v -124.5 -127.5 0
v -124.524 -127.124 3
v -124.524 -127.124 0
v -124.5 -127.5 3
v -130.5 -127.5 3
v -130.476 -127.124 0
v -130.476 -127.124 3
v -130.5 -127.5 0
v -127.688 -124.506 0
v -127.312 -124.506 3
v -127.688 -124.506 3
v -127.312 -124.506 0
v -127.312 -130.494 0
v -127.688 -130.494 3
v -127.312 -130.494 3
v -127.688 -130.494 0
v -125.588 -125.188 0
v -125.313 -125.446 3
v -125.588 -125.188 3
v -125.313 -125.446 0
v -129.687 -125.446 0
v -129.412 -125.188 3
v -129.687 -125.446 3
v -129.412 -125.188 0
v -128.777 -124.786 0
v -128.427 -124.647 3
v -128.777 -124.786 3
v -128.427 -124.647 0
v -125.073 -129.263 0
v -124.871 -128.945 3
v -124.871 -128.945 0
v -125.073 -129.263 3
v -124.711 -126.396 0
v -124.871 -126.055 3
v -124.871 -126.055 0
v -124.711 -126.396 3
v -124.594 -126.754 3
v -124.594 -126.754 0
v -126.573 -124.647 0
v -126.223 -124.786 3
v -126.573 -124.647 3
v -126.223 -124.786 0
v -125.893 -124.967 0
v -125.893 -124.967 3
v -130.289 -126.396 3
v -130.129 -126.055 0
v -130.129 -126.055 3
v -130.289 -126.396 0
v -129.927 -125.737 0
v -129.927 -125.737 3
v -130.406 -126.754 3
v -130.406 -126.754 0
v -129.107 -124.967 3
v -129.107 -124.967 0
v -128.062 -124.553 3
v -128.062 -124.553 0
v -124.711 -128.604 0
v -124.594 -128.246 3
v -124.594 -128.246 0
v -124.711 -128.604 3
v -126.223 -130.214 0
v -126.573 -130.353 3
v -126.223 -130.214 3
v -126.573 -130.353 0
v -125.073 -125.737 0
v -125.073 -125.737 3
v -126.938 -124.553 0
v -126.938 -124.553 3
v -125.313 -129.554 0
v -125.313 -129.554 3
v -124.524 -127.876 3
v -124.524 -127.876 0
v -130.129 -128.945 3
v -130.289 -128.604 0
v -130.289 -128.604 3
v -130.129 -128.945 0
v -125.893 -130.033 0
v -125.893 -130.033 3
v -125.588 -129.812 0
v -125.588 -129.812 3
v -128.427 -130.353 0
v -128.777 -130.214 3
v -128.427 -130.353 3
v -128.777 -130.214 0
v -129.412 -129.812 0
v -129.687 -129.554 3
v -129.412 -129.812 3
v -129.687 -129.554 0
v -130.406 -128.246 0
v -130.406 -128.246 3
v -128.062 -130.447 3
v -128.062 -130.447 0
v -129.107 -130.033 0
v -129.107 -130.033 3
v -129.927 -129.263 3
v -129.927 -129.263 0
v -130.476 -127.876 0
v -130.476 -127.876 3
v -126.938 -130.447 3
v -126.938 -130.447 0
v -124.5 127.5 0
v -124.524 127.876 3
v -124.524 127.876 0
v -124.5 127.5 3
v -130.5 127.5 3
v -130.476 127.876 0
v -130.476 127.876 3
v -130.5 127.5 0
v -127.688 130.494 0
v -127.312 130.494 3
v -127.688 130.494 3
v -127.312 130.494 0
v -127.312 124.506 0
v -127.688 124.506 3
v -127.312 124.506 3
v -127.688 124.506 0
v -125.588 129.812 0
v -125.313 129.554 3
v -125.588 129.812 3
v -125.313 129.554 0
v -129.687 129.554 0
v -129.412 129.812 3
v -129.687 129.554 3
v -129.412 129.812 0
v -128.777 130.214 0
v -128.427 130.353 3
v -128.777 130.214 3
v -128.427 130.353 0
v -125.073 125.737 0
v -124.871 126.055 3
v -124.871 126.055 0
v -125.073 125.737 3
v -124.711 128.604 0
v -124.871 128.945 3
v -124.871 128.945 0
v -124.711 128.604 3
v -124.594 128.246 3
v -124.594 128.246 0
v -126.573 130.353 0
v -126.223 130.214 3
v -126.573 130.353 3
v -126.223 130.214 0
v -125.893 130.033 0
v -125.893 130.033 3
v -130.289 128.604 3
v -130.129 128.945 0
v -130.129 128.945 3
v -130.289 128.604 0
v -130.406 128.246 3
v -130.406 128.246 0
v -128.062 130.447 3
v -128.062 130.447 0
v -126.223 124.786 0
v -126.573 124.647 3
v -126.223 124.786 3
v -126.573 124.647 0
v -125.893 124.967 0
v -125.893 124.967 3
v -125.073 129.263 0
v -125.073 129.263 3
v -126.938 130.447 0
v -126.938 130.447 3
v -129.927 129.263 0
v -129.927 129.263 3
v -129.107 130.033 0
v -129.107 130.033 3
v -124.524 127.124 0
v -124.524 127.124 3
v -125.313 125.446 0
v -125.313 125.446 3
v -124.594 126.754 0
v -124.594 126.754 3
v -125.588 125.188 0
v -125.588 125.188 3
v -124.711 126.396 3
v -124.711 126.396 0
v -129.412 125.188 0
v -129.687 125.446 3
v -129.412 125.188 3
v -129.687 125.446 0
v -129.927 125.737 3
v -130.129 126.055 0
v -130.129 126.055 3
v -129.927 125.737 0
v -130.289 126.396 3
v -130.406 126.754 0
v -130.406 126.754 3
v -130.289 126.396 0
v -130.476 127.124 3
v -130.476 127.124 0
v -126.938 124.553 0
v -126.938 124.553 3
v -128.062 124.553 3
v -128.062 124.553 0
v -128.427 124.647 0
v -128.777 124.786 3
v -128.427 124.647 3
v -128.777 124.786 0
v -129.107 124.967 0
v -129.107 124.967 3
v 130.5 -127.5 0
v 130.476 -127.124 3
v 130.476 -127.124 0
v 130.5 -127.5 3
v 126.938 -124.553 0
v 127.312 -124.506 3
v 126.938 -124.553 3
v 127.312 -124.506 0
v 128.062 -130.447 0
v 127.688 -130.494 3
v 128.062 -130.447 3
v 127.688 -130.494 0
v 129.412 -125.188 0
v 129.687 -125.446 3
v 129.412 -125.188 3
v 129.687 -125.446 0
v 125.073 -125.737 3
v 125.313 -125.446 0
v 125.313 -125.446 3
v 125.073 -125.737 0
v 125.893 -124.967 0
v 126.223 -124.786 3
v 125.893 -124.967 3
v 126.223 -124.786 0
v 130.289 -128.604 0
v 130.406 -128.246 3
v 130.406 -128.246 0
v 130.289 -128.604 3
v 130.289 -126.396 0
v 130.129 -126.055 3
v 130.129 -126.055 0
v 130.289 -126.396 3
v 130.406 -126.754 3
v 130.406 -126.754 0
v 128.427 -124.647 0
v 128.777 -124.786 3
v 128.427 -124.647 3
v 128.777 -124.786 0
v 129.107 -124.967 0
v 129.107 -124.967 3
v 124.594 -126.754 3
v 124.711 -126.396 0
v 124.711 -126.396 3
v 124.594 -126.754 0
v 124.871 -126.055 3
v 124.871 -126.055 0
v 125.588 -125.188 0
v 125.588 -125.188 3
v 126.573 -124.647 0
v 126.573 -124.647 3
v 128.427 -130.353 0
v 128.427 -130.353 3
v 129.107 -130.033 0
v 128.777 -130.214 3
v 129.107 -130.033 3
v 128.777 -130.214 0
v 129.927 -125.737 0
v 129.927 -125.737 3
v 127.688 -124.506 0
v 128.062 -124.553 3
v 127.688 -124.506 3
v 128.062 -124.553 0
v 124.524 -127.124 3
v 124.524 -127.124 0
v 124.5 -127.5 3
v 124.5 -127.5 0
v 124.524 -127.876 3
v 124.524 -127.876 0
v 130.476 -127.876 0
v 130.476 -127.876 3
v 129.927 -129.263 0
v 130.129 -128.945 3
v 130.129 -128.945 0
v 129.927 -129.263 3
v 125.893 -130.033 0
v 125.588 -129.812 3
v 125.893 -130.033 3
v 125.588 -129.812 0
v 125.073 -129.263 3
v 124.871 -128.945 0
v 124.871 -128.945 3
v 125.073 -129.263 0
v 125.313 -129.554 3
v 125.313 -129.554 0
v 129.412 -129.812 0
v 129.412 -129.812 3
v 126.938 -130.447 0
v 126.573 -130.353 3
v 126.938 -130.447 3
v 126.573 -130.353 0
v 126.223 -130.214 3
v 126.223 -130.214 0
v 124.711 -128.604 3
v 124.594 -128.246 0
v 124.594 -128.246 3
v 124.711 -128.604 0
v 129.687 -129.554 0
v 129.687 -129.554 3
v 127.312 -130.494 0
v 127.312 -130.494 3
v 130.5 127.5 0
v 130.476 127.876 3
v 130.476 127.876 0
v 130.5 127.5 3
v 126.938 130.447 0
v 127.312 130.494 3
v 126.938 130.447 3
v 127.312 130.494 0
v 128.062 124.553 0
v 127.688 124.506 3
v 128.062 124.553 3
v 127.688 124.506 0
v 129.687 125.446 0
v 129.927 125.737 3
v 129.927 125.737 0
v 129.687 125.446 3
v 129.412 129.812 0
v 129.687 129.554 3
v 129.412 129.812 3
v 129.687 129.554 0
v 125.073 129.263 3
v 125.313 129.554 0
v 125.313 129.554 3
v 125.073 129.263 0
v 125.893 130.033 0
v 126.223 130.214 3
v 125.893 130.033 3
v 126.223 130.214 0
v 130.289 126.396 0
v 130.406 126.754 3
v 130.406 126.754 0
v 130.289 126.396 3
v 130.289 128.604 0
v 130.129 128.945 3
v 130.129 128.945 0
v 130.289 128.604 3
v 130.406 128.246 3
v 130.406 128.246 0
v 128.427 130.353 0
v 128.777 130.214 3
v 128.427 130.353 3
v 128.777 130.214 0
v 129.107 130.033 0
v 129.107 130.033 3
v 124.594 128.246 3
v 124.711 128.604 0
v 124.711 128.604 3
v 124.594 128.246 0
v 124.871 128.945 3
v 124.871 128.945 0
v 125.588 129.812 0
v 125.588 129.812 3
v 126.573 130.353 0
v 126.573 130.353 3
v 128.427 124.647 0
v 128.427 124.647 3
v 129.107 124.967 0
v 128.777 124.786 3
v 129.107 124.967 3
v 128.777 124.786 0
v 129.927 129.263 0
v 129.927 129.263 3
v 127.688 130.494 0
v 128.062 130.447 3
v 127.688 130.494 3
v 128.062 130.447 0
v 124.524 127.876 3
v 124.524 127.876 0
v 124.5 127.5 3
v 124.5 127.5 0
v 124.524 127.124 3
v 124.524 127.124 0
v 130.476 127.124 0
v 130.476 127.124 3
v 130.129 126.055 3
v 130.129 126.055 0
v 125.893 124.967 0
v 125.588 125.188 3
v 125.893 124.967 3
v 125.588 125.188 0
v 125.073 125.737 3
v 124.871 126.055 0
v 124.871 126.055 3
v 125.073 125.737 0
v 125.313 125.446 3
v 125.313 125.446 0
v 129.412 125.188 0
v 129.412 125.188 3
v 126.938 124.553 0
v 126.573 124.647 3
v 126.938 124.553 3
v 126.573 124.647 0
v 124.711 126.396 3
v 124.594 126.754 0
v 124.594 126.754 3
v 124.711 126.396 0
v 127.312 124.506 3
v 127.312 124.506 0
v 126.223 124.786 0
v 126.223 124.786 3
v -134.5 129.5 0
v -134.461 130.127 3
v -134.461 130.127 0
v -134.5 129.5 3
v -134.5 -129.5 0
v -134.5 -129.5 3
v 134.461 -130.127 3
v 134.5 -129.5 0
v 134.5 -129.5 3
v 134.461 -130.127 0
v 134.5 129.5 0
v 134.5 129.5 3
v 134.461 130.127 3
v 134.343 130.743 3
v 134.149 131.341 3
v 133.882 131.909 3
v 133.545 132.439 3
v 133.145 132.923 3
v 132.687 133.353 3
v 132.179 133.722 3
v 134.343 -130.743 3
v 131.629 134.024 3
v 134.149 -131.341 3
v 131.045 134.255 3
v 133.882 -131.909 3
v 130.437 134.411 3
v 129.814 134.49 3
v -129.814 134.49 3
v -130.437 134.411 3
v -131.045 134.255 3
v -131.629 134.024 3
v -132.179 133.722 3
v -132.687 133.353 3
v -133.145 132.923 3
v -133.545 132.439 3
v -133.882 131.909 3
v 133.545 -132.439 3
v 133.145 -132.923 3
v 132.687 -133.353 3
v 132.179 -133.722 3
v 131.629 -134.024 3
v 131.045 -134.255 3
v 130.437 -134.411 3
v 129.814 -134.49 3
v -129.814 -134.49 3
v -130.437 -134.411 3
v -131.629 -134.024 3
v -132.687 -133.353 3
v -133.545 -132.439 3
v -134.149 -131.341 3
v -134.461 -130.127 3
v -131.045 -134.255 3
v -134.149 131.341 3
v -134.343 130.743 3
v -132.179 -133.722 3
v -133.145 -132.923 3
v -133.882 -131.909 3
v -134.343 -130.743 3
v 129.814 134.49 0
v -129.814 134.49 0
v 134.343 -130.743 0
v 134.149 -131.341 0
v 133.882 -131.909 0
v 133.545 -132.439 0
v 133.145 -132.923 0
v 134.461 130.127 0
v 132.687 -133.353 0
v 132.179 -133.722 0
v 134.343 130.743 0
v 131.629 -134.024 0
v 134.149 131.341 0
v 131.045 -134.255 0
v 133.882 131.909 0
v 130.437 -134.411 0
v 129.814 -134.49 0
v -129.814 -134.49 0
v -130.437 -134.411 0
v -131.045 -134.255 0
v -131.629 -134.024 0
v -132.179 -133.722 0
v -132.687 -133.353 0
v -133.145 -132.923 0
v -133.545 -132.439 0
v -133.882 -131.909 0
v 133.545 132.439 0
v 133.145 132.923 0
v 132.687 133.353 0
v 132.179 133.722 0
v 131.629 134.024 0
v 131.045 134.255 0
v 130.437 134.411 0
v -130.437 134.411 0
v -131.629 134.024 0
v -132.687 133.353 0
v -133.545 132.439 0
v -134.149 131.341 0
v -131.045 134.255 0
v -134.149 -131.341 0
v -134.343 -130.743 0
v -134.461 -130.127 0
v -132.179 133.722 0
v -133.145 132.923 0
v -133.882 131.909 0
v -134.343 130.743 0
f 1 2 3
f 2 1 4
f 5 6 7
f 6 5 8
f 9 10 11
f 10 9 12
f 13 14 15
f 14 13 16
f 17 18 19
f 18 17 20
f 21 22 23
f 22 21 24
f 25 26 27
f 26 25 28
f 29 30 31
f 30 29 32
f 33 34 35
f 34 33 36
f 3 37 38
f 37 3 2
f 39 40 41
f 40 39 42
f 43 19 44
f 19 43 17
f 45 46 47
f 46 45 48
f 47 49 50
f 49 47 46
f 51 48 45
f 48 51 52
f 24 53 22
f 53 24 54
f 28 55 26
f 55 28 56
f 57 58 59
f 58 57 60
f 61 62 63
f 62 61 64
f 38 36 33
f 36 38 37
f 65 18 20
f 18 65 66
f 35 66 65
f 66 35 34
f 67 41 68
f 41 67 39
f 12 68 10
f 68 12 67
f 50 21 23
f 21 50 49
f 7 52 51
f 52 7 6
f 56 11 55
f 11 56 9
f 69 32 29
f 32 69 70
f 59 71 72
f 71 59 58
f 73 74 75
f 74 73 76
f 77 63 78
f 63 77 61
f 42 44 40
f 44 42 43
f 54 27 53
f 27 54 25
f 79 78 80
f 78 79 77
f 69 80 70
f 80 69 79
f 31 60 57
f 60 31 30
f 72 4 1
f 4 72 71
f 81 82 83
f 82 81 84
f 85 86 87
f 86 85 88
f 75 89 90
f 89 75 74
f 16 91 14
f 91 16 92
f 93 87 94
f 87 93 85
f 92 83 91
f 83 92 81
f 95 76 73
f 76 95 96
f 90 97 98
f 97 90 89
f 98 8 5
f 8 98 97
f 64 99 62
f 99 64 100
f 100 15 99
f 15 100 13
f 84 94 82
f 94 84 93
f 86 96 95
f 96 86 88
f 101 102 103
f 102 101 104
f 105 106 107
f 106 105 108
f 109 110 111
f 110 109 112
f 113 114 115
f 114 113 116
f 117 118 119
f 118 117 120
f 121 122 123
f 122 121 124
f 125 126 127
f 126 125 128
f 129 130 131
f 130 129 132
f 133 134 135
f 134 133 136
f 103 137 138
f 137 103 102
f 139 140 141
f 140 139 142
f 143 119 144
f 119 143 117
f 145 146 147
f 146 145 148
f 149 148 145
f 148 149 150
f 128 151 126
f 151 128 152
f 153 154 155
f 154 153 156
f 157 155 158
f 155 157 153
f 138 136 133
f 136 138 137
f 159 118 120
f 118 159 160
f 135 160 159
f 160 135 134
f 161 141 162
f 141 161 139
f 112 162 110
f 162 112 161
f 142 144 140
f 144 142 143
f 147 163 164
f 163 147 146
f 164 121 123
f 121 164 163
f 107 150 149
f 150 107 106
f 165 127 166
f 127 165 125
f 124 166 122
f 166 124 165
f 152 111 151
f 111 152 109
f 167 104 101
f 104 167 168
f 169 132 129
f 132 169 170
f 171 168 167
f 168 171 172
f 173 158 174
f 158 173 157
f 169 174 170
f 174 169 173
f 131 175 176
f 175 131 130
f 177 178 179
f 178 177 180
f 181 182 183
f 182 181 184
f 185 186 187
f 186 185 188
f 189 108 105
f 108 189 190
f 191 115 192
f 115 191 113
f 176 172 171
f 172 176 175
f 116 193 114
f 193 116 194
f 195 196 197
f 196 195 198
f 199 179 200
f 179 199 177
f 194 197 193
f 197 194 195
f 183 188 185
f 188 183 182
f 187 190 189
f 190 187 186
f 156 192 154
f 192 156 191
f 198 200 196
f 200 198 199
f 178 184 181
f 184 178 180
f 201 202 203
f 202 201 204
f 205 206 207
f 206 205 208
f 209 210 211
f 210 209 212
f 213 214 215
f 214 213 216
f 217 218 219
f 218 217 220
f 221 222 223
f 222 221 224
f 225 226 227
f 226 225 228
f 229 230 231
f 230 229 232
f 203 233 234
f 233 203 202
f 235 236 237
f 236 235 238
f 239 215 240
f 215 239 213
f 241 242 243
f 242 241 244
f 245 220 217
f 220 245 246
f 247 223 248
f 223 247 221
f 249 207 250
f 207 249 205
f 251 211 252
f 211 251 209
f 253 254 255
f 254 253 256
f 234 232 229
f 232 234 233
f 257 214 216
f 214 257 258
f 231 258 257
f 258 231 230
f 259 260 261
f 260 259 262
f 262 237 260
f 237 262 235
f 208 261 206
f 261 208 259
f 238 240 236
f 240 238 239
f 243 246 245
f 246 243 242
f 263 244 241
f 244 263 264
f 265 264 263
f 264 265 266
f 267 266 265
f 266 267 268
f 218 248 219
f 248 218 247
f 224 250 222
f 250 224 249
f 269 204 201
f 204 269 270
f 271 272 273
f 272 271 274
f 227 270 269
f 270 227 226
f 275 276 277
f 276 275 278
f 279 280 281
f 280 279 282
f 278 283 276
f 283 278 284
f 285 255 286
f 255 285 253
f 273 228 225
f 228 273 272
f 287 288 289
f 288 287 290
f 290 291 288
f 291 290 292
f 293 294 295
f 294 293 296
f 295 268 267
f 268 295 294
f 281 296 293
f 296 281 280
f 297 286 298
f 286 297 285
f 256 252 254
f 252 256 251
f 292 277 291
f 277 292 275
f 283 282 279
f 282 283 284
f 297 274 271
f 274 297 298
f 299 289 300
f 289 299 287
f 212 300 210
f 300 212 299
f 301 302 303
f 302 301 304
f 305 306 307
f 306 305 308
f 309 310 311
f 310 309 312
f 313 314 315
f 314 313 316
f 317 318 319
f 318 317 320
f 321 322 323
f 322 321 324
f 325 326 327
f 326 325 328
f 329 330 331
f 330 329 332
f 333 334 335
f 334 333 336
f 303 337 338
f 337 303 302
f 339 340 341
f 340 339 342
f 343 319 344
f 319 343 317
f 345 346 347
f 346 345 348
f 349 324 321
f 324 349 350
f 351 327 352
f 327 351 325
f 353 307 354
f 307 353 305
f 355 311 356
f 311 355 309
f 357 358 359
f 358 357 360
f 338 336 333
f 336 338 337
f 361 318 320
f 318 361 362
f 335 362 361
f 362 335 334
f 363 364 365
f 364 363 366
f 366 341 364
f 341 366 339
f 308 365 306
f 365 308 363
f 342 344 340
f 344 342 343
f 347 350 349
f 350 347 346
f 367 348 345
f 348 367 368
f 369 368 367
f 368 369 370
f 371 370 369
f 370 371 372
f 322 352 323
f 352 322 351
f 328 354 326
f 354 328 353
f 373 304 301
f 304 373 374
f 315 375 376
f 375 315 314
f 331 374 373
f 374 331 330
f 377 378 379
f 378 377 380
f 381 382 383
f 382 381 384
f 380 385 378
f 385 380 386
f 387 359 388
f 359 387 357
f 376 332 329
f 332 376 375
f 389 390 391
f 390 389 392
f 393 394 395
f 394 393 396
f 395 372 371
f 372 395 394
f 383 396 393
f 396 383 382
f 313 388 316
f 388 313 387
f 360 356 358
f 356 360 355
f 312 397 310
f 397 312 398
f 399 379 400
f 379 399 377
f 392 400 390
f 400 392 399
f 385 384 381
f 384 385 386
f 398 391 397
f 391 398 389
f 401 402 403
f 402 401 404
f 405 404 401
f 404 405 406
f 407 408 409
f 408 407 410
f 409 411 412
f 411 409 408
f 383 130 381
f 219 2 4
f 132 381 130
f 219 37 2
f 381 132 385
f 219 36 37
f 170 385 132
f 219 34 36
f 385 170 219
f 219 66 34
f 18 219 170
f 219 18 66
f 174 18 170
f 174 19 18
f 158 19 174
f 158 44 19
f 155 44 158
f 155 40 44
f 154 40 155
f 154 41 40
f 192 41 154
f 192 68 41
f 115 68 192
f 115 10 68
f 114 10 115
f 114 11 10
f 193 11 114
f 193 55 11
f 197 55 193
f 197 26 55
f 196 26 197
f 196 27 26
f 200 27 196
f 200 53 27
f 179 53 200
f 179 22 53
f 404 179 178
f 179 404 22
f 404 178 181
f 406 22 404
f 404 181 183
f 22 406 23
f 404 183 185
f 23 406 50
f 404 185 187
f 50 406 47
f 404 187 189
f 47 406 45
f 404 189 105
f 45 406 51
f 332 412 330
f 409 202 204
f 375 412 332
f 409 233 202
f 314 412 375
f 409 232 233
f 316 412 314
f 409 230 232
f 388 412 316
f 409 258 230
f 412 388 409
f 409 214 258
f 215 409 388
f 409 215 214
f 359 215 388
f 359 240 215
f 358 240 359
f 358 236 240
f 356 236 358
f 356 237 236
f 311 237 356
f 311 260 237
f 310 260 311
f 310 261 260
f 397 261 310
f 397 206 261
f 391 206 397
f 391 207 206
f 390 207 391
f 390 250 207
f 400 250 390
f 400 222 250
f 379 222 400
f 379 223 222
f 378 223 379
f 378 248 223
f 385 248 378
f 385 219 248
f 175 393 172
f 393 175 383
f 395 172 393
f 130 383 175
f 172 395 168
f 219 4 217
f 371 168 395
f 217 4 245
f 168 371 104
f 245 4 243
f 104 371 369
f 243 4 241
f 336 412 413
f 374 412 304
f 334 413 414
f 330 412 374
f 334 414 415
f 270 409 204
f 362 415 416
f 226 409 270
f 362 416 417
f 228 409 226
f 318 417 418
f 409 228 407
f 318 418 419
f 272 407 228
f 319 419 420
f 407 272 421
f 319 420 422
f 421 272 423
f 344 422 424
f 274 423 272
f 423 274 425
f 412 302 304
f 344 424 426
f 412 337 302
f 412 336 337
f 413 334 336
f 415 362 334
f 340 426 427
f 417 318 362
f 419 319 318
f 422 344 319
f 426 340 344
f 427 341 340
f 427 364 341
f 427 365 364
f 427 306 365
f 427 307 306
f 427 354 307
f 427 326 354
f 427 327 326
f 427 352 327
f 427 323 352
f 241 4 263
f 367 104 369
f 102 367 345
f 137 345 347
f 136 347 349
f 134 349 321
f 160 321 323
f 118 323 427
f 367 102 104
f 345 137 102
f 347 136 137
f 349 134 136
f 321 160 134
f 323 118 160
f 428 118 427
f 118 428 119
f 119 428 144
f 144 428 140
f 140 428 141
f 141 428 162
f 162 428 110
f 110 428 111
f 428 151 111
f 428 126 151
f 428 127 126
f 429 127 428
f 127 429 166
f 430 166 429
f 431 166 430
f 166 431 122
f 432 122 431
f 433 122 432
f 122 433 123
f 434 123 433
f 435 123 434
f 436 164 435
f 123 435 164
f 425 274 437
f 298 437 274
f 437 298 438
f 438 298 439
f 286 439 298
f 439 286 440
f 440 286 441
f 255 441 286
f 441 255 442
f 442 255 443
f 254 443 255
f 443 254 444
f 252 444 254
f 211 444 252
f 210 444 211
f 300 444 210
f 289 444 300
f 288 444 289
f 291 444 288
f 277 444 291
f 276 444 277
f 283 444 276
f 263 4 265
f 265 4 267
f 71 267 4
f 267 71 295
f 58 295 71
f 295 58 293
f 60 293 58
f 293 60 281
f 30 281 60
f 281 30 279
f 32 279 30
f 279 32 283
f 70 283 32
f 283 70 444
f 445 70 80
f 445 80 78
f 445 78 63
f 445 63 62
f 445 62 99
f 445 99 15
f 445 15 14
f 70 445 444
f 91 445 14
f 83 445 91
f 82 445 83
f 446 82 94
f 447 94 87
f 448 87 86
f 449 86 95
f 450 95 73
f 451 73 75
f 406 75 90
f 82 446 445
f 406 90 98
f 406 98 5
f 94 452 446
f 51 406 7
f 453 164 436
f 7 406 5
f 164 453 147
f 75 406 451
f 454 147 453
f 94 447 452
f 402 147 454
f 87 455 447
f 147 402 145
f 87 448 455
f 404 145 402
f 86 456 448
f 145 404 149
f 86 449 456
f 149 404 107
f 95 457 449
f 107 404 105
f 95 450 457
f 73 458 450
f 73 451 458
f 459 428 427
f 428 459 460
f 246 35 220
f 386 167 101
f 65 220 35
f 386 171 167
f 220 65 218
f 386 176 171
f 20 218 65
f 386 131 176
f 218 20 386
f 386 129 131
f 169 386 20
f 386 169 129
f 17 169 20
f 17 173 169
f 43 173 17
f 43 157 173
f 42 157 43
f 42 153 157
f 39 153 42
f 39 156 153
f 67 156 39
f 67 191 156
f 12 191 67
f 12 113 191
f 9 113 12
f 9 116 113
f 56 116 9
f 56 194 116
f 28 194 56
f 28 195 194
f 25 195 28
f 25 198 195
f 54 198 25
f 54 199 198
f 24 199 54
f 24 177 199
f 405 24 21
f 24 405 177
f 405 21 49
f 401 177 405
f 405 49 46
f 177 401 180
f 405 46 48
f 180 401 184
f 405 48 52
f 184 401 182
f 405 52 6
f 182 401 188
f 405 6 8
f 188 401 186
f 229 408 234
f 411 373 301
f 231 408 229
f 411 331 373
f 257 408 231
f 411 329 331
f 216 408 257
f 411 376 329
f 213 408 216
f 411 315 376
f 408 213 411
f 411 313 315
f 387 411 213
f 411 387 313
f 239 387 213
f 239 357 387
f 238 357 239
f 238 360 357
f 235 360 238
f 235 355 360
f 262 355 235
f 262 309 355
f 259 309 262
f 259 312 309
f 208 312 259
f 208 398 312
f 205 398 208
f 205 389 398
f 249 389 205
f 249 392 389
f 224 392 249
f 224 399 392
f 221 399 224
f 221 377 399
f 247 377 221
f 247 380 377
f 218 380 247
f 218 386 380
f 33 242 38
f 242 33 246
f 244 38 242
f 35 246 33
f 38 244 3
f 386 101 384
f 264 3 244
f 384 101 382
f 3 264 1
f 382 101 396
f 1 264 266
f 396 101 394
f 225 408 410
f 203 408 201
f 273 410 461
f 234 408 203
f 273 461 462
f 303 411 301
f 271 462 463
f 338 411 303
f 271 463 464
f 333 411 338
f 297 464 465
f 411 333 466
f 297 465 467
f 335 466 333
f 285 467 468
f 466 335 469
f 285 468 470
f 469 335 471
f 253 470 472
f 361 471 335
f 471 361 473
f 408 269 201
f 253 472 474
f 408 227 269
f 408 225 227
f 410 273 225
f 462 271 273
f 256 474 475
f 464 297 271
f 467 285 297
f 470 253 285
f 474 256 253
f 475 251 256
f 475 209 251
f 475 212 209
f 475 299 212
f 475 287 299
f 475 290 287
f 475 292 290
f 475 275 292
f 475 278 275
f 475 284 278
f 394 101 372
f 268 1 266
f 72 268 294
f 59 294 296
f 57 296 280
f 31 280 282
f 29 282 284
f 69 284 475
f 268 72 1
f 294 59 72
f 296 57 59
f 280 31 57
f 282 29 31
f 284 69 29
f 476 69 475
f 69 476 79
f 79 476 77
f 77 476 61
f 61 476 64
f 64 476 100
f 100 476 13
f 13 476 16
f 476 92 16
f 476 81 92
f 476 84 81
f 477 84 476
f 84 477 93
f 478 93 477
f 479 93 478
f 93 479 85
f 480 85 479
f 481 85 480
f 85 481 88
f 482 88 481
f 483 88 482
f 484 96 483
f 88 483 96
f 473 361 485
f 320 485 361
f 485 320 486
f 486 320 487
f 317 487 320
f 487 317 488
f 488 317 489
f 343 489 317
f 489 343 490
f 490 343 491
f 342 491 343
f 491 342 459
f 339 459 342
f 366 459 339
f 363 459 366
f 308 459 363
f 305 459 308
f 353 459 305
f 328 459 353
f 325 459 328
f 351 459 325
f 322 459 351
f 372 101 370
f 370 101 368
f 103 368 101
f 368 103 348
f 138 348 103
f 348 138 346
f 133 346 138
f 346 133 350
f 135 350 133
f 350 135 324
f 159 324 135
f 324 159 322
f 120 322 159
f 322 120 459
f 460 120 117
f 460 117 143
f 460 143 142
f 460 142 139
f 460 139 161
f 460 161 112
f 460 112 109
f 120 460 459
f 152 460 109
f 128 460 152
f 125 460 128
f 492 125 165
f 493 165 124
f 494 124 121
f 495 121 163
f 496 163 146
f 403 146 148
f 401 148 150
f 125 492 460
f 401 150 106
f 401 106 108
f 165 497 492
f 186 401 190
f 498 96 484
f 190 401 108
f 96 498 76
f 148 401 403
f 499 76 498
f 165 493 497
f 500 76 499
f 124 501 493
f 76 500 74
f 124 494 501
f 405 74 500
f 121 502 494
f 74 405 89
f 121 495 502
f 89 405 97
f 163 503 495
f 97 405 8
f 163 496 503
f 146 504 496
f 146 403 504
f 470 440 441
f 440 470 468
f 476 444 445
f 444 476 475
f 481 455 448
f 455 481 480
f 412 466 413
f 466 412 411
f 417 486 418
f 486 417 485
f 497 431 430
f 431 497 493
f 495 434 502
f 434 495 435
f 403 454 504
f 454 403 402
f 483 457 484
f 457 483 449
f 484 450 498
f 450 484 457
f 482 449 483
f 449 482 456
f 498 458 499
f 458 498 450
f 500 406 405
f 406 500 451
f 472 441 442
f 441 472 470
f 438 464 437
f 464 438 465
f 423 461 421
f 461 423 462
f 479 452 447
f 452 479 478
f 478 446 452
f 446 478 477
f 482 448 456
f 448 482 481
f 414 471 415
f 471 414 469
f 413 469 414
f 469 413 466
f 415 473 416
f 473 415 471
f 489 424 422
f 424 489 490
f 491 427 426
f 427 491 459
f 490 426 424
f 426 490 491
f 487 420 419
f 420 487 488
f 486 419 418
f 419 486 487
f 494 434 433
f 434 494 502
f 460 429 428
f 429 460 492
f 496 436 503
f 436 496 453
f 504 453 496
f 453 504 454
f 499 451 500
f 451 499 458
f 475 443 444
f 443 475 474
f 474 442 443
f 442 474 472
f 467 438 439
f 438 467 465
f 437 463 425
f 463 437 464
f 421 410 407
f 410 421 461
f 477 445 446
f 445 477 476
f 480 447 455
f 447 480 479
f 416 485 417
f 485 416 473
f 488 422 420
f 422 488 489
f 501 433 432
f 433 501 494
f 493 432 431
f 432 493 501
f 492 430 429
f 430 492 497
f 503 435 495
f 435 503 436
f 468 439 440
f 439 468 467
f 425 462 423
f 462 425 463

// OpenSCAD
$fn = 50;


difference() {
	union() {
		hull() {
			translate(v = [-129.5000000000, 129.5000000000, 0]) {
				cylinder(h = 3, r = 5);
			}
			translate(v = [129.5000000000, 129.5000000000, 0]) {
				cylinder(h = 3, r = 5);
			}
			translate(v = [-129.5000000000, -129.5000000000, 0]) {
				cylinder(h = 3, r = 5);
			}
			translate(v = [129.5000000000, -129.5000000000, 0]) {
				cylinder(h = 3, r = 5);
			}
		}
	}
	union() {
		translate(v = [-127.5000000000, -127.5000000000, -100.0000000000]) {
			cylinder(h = 200, r = 3.0000000000);
		}
		translate(v = [-127.5000000000, 127.5000000000, -100.0000000000]) {
			cylinder(h = 200, r = 3.0000000000);
		}
		translate(v = [127.5000000000, -127.5000000000, -100.0000000000]) {
			cylinder(h = 200, r = 3.0000000000);
		}
		translate(v = [127.5000000000, 127.5000000000, -100.0000000000]) {
			cylinder(h = 200, r = 3.0000000000);
		}
	}
}
